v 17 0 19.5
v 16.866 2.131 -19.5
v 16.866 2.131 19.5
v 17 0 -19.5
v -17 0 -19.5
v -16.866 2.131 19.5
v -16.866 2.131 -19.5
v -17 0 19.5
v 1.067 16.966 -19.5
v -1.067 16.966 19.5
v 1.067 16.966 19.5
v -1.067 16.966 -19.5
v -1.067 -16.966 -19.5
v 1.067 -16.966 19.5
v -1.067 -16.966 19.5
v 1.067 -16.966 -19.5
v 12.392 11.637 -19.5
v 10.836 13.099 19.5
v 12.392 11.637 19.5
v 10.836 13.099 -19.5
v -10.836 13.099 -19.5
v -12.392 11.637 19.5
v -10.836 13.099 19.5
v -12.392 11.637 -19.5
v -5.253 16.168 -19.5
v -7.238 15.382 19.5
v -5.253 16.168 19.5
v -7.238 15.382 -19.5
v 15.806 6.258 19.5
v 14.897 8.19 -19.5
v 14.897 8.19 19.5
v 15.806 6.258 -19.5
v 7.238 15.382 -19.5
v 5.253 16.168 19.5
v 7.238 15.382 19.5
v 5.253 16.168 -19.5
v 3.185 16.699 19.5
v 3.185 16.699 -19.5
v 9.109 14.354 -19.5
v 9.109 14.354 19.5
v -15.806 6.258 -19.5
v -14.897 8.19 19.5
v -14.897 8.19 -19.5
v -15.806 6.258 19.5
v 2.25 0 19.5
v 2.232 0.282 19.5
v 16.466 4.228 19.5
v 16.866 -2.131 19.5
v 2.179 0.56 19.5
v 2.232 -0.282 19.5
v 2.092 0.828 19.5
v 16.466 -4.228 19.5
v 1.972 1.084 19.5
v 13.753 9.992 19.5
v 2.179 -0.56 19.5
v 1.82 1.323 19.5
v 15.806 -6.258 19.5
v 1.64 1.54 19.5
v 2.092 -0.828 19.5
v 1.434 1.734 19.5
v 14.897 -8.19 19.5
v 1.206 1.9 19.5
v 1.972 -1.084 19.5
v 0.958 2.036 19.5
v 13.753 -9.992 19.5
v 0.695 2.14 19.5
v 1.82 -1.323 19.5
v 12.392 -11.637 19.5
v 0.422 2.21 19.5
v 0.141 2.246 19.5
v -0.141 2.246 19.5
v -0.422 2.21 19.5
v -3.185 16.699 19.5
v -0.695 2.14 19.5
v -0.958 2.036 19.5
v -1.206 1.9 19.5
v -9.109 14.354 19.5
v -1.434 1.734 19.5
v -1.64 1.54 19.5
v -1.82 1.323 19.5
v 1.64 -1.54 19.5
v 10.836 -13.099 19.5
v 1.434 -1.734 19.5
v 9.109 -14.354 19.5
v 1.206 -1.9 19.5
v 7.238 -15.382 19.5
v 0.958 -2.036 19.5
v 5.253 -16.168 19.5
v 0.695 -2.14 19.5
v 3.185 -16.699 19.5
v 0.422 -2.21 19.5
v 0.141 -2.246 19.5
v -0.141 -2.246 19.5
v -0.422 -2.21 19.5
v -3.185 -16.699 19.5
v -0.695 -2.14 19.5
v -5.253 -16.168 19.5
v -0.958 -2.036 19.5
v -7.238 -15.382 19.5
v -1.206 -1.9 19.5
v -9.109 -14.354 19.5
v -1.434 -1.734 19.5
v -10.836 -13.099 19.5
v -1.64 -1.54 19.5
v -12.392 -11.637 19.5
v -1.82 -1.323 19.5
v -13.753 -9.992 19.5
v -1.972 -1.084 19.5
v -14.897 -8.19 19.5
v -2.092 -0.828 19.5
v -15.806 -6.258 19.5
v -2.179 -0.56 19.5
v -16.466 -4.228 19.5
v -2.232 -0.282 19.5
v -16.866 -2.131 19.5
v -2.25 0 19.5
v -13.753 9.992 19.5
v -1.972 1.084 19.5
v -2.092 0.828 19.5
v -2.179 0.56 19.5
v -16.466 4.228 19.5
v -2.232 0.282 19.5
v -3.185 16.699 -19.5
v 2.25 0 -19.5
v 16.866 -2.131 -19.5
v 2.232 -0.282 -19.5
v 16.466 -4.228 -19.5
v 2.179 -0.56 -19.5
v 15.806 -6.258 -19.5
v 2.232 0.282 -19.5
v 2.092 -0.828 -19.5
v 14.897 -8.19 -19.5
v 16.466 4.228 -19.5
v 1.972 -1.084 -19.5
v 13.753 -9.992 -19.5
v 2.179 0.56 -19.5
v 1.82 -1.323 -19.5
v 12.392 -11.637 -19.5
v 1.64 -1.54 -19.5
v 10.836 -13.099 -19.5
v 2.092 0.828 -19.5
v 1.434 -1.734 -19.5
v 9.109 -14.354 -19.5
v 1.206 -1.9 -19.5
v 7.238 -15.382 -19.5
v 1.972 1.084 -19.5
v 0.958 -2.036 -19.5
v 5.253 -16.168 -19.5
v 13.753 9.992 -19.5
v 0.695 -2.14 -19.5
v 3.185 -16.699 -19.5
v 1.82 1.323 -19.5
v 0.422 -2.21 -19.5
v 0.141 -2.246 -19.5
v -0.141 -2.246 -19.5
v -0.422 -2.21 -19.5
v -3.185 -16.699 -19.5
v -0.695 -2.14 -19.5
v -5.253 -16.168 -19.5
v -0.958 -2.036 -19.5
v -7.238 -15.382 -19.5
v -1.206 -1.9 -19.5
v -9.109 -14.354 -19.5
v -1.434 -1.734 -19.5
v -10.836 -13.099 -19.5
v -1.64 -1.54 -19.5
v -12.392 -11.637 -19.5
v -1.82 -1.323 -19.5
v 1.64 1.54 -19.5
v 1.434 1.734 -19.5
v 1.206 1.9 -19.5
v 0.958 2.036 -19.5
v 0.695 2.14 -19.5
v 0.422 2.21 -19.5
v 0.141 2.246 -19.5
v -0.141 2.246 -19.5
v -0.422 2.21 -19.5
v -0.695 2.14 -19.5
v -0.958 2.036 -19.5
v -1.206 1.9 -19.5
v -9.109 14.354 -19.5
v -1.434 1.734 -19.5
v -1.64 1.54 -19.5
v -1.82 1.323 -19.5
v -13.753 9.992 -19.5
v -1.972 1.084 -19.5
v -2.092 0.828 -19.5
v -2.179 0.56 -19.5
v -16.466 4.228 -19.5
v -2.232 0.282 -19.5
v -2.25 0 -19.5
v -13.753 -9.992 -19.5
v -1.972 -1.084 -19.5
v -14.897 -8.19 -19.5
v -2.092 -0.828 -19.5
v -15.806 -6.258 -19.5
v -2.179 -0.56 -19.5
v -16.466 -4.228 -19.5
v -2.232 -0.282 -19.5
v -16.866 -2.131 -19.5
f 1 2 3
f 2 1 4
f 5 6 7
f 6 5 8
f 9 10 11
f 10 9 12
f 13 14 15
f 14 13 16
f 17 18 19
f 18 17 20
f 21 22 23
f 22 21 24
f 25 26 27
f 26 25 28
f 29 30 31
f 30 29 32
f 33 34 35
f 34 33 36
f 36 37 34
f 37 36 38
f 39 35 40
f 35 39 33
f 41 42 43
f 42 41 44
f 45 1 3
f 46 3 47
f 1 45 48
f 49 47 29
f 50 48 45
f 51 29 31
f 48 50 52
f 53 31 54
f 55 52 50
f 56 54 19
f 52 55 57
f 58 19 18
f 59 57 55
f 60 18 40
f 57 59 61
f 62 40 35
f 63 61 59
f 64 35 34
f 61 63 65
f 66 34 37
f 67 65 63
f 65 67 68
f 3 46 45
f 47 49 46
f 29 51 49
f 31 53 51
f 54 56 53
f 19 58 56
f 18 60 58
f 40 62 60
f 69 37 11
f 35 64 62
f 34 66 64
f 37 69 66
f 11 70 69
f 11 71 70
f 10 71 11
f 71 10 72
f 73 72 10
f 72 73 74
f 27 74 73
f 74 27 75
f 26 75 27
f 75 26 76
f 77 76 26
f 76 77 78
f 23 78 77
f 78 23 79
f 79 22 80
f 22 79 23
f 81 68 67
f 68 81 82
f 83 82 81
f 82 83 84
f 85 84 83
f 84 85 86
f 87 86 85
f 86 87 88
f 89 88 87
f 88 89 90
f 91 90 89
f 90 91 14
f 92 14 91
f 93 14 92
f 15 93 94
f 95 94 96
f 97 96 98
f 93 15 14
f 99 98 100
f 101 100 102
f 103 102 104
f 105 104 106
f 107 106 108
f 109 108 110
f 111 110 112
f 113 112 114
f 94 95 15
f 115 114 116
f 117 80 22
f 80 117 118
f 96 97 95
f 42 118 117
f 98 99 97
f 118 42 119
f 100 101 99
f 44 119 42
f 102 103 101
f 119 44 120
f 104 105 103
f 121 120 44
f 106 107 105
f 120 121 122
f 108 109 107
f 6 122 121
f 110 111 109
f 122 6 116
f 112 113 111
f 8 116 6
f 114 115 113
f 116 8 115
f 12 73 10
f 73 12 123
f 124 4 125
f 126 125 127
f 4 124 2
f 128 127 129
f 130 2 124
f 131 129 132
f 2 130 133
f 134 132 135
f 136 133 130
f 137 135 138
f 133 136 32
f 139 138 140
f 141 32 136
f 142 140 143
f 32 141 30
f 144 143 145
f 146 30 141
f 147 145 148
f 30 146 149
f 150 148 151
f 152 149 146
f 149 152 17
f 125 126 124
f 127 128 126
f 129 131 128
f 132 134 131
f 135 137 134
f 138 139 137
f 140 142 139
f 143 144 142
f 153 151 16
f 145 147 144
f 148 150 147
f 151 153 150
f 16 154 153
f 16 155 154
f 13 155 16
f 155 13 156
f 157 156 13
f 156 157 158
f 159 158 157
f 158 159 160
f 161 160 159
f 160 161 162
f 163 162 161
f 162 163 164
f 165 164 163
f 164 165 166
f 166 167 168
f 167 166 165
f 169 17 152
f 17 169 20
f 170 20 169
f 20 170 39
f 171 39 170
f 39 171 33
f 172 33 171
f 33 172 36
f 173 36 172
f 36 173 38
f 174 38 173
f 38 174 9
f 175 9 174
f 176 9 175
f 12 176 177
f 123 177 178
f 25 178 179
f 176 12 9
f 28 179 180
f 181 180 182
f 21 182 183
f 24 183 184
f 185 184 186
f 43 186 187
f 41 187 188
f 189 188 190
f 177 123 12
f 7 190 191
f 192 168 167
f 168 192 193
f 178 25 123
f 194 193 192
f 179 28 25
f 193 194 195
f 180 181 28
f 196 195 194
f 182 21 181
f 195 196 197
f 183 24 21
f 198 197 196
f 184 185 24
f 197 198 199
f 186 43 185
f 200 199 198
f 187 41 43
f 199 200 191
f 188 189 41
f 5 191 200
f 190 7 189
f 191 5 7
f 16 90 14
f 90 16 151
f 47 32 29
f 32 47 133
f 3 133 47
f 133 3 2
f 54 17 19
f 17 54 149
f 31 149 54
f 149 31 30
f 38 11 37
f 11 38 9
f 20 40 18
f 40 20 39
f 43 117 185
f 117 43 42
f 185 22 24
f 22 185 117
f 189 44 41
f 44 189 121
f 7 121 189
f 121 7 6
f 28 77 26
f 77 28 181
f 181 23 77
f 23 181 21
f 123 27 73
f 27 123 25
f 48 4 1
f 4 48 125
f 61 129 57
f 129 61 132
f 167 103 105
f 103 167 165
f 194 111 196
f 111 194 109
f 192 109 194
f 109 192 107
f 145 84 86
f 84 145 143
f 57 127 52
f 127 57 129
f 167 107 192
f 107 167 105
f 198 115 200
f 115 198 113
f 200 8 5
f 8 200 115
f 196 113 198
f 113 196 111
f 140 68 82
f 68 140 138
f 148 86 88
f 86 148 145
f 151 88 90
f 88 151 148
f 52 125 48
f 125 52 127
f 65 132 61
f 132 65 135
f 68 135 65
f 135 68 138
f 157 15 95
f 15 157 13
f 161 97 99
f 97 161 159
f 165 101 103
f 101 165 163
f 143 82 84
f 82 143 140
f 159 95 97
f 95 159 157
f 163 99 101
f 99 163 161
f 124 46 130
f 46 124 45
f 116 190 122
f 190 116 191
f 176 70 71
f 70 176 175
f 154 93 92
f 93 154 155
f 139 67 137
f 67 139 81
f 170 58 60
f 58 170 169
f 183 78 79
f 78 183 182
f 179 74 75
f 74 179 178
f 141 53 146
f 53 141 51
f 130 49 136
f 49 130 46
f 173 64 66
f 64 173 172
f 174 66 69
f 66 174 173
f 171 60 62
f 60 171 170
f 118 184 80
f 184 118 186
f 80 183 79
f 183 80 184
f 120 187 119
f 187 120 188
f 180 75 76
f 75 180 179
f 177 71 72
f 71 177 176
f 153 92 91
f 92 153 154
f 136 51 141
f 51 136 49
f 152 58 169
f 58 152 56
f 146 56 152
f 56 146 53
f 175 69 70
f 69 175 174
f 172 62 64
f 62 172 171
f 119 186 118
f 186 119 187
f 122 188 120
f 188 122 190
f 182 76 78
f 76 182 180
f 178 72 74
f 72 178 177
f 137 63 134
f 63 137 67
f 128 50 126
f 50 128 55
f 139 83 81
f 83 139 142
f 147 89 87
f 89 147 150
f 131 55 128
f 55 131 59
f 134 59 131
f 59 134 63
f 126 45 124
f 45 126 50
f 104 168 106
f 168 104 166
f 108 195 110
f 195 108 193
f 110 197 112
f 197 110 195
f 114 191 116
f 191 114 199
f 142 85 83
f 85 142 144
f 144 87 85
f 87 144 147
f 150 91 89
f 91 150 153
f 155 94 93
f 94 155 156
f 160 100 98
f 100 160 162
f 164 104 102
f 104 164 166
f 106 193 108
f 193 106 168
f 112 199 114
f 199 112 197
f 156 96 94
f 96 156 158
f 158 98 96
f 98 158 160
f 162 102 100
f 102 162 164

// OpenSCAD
$fn = 50;


difference() {
	union() {
		translate(v = [0, 0, -19.5000000000]) {
			cylinder(h = 39, r = 17.0000000000);
		}
	}
	union() {
		translate(v = [0, 0, -100.0000000000]) {
			cylinder(h = 200, r = 2.2500000000);
		}
	}
}
